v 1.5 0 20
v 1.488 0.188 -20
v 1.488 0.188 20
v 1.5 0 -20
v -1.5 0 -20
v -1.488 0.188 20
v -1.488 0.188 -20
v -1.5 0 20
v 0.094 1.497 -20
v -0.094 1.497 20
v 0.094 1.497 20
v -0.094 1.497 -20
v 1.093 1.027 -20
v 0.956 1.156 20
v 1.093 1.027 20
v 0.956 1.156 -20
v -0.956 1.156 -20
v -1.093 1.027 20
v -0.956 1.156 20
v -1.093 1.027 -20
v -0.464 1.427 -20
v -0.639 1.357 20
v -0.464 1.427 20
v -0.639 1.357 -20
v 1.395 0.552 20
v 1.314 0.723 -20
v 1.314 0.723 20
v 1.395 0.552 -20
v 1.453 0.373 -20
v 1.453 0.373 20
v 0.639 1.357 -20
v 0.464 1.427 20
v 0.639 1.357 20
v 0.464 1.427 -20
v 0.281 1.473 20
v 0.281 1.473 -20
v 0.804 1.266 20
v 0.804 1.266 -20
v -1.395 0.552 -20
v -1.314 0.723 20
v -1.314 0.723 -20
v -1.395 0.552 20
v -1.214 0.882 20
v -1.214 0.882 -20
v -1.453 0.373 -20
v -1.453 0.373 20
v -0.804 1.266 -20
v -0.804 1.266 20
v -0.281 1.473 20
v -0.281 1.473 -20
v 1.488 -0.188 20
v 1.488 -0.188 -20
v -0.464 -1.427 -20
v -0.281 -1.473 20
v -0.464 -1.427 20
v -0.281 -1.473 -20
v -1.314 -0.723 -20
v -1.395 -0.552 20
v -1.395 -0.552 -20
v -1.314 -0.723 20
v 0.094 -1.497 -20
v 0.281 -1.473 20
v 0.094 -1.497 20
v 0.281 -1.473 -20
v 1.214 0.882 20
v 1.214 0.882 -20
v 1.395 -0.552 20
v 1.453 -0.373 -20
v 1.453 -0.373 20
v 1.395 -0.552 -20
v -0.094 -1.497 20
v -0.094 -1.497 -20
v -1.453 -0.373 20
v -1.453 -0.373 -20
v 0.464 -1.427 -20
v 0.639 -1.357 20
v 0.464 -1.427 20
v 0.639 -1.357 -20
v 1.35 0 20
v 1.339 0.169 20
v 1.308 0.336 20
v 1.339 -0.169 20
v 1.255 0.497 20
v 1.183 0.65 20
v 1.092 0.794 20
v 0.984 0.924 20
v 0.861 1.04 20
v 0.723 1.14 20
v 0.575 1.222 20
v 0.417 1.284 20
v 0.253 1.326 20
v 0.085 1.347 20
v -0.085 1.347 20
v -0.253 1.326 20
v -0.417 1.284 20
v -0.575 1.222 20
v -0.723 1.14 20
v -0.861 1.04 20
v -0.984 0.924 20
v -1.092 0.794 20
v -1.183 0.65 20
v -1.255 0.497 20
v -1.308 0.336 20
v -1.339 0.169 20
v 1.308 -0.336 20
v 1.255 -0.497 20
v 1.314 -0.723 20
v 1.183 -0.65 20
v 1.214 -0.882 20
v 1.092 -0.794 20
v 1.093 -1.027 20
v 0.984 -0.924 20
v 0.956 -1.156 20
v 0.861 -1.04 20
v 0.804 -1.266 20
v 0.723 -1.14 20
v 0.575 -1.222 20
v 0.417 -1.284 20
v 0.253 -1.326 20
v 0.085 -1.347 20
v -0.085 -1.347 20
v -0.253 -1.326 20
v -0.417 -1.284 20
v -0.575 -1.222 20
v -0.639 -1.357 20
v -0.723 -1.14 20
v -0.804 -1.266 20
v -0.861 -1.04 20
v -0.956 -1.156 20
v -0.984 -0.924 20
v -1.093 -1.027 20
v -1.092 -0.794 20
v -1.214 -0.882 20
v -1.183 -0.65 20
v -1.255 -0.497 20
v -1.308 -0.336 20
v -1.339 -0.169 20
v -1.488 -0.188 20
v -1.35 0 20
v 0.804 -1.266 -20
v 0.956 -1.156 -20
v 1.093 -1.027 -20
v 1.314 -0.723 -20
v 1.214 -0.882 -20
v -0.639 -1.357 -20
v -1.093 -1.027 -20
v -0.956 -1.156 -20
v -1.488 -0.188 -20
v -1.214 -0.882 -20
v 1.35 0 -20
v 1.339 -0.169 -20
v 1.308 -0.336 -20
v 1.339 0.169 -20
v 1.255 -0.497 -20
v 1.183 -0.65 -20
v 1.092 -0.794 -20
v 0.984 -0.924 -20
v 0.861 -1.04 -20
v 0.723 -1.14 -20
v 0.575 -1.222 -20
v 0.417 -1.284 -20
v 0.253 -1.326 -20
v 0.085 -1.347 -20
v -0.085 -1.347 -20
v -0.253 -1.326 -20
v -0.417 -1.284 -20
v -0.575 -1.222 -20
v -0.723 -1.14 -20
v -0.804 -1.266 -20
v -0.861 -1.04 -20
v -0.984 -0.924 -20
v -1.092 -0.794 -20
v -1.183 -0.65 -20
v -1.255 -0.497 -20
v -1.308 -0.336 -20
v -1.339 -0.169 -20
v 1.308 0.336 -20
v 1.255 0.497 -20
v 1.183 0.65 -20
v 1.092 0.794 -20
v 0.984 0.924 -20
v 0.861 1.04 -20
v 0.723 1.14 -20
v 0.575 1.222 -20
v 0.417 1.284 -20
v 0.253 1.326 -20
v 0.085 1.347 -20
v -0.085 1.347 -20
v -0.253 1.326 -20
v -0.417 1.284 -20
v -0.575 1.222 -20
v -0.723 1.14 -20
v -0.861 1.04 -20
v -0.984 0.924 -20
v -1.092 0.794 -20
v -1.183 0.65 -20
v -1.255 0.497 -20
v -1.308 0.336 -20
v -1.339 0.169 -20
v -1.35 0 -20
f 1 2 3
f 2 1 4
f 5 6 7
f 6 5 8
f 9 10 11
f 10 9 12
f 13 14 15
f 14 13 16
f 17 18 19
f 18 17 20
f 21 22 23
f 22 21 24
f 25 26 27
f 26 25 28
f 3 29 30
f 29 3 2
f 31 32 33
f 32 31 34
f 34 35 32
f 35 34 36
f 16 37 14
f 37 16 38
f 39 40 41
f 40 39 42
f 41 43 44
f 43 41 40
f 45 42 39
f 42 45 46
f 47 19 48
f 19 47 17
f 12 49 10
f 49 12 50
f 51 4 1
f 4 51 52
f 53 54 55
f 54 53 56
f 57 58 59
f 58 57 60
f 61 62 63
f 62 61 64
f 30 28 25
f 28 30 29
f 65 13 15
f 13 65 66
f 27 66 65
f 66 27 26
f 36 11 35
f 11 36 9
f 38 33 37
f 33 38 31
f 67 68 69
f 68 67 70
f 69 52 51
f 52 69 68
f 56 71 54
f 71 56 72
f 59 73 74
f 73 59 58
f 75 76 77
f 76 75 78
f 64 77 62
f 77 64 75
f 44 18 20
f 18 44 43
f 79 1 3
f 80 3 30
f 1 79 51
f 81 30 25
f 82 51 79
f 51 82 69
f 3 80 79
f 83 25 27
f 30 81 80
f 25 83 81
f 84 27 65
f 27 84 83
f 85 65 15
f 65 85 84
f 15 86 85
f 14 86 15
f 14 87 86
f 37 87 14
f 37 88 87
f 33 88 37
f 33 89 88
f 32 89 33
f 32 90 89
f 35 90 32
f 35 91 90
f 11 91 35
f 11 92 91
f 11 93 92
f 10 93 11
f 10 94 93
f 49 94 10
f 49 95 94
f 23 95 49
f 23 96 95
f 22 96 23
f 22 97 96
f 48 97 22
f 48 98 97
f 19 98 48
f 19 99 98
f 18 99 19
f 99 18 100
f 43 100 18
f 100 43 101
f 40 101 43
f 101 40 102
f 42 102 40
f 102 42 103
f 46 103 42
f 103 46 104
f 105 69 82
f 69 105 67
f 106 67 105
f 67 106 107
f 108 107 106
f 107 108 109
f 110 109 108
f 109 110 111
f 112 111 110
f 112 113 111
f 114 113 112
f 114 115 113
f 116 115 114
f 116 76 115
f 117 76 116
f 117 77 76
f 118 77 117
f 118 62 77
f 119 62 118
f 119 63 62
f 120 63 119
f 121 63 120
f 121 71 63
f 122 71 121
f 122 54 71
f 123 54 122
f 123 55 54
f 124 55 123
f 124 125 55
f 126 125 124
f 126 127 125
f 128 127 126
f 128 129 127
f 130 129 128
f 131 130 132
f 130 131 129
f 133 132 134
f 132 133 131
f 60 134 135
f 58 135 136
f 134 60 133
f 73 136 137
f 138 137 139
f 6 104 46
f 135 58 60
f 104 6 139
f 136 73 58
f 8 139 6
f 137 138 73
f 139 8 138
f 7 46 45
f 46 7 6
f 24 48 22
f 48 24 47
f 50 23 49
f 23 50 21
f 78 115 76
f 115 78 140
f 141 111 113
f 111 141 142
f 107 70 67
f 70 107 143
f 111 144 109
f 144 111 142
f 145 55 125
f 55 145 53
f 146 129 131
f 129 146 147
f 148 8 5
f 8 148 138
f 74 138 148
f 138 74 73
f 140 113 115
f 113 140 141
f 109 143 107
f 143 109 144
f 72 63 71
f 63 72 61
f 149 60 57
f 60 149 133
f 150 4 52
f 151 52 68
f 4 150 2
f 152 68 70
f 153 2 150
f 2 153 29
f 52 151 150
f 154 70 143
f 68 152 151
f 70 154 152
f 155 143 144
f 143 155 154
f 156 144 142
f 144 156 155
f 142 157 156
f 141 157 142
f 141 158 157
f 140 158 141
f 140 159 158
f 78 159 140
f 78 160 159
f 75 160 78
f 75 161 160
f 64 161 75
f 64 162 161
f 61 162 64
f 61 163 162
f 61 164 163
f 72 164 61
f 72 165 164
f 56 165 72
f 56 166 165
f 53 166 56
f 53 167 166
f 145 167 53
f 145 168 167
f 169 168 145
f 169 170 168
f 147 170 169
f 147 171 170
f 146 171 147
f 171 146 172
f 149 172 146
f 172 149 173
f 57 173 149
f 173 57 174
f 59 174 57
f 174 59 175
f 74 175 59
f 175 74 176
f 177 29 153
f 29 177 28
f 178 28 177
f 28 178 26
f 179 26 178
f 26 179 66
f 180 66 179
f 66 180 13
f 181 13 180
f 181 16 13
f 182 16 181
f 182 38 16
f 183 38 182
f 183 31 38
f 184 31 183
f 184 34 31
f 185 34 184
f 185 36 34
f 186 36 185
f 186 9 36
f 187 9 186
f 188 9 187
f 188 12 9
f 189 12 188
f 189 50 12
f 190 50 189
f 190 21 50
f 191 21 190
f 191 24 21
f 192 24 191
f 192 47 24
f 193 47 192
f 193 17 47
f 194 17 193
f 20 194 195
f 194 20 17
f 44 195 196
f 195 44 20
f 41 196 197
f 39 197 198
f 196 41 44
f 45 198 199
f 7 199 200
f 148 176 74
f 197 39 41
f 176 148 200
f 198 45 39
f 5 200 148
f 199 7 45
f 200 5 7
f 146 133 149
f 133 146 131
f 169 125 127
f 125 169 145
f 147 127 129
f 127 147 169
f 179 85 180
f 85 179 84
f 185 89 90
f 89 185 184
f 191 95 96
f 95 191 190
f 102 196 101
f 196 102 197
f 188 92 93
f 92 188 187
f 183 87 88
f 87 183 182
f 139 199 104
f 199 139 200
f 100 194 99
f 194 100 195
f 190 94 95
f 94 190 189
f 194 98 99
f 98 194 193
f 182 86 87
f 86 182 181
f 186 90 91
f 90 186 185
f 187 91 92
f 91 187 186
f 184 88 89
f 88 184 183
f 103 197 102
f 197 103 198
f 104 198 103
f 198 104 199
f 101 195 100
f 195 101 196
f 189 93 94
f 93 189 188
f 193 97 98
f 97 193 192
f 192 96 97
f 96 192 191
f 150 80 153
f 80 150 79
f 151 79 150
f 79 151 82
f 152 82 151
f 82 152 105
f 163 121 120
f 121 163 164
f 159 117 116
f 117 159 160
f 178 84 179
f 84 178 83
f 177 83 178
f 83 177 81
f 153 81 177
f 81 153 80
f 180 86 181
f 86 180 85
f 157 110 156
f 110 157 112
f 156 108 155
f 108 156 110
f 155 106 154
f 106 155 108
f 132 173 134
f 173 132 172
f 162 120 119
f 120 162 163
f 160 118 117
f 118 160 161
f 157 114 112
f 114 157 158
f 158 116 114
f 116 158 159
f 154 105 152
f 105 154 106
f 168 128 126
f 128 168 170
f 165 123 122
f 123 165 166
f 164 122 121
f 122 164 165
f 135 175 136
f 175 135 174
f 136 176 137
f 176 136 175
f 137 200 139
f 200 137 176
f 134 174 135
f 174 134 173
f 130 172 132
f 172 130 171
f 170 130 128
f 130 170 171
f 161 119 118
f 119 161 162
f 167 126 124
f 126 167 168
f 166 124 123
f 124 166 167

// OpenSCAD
$fn = 50;


difference() {
	union() {
		translate(v = [0, 0, -20.0000000000]) {
			cylinder(h = 40, r = 1.5000000000);
		}
	}
	union() {
		translate(v = [0, 0, -100.0000000000]) {
			cylinder(h = 200, r = 1.3500000000);
		}
	}
}
